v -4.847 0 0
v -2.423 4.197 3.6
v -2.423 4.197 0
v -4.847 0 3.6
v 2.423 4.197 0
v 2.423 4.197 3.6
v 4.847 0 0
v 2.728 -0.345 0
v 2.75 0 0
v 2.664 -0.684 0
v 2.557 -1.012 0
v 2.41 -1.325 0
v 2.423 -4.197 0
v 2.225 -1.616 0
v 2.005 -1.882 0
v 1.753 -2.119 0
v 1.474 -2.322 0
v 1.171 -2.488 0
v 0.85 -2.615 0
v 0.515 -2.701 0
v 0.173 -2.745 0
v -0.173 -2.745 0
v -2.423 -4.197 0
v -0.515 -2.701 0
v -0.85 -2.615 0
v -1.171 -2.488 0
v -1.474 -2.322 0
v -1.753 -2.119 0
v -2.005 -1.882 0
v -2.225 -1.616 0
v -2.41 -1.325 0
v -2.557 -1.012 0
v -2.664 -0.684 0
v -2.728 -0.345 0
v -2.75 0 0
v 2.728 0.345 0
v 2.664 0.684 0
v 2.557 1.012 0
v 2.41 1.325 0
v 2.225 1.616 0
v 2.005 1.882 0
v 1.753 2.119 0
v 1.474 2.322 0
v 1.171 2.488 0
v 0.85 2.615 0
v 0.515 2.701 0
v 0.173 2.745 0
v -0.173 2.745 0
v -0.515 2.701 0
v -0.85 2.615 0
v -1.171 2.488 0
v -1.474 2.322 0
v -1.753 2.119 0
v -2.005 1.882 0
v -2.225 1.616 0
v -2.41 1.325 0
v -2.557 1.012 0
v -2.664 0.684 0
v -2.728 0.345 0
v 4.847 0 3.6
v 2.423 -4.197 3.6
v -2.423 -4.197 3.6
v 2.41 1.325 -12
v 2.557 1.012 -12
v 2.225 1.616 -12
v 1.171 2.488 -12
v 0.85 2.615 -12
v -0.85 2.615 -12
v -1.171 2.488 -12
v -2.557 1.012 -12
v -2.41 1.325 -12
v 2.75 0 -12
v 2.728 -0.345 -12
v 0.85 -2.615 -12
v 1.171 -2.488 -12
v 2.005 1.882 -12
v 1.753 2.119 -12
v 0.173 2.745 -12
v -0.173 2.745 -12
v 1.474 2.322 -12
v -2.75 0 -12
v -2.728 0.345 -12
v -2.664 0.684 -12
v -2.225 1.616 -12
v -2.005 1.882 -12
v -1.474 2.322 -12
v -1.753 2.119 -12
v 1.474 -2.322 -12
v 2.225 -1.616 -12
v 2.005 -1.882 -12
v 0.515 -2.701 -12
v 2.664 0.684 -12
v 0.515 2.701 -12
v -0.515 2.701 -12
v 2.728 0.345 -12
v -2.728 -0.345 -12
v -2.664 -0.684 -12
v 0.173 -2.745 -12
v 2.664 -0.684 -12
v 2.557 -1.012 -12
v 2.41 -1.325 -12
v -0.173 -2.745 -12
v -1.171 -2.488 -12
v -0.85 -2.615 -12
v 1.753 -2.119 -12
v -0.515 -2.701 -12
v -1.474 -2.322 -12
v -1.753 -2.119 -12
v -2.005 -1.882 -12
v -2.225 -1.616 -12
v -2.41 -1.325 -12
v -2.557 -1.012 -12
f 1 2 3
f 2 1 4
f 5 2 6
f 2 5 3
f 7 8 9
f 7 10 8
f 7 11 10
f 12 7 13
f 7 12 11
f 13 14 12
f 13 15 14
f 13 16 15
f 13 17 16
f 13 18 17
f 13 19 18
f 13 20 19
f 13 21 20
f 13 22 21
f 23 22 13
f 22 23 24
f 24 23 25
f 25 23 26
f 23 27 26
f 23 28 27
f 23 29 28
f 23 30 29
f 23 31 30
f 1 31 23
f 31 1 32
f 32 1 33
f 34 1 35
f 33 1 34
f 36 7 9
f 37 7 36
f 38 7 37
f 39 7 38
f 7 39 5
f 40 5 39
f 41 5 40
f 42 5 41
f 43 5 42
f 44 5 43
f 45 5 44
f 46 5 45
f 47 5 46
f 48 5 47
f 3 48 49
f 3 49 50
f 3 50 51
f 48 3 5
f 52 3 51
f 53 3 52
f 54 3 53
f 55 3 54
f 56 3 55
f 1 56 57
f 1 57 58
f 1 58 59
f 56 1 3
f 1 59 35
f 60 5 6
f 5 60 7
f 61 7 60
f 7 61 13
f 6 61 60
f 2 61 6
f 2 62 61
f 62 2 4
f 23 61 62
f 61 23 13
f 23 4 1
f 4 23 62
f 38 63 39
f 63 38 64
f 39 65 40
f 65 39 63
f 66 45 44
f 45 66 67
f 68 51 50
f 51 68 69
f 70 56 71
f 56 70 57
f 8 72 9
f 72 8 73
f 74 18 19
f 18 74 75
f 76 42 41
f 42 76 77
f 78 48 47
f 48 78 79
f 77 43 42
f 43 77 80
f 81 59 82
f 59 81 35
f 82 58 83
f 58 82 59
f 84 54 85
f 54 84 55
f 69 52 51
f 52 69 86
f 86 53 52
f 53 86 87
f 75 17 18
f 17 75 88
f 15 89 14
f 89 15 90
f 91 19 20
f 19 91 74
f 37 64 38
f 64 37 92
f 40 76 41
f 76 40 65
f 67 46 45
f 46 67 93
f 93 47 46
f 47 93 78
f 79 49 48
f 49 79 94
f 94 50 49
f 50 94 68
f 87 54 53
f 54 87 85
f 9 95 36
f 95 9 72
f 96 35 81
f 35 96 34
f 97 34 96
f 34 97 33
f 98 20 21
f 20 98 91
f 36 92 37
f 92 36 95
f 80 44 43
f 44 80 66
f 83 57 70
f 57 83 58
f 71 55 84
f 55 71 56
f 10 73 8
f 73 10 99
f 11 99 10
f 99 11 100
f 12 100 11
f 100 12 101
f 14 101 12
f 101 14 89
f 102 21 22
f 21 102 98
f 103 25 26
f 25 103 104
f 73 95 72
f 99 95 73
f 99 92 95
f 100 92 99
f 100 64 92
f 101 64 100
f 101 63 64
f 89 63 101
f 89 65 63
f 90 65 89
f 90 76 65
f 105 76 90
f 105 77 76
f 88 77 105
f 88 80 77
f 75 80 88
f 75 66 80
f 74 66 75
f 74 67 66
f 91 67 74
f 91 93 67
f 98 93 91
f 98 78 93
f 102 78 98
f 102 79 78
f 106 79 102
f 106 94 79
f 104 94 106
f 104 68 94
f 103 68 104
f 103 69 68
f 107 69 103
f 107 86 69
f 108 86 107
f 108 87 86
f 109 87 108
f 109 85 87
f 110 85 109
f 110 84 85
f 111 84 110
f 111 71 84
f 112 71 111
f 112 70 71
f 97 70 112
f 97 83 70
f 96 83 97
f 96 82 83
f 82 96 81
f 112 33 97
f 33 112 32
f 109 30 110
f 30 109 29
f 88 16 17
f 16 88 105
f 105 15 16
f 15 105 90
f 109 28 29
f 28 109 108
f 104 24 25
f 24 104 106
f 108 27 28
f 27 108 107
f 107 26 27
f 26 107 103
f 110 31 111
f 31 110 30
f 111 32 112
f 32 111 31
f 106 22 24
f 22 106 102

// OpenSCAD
$fn = 50;


difference() {
	union() {
		translate(v = [0, 0, 0]) {
			rotate(a = [0, 0, 0]) {
				translate(v = [0, 0, 0]) {
					rotate(a = [0, 0, 0]) {
						linear_extrude(height = 3.6000000000) {
							polygon(points = [[4.8468000000, 0.0000000000], [2.4234000000, 4.1974519271], [-2.4234000000, 4.1974519271], [-4.8468000000, 0.0000000000], [-2.4234000000, -4.1974519271], [2.4234000000, -4.1974519271]]);
						}
					}
				}
			}
		}
		translate(v = [0, 0, -12]) {
			rotate(a = [0, 0, 0]) {
				cylinder(h = 12, r = 2.7500000000);
			}
		}
	}
	union();
}
